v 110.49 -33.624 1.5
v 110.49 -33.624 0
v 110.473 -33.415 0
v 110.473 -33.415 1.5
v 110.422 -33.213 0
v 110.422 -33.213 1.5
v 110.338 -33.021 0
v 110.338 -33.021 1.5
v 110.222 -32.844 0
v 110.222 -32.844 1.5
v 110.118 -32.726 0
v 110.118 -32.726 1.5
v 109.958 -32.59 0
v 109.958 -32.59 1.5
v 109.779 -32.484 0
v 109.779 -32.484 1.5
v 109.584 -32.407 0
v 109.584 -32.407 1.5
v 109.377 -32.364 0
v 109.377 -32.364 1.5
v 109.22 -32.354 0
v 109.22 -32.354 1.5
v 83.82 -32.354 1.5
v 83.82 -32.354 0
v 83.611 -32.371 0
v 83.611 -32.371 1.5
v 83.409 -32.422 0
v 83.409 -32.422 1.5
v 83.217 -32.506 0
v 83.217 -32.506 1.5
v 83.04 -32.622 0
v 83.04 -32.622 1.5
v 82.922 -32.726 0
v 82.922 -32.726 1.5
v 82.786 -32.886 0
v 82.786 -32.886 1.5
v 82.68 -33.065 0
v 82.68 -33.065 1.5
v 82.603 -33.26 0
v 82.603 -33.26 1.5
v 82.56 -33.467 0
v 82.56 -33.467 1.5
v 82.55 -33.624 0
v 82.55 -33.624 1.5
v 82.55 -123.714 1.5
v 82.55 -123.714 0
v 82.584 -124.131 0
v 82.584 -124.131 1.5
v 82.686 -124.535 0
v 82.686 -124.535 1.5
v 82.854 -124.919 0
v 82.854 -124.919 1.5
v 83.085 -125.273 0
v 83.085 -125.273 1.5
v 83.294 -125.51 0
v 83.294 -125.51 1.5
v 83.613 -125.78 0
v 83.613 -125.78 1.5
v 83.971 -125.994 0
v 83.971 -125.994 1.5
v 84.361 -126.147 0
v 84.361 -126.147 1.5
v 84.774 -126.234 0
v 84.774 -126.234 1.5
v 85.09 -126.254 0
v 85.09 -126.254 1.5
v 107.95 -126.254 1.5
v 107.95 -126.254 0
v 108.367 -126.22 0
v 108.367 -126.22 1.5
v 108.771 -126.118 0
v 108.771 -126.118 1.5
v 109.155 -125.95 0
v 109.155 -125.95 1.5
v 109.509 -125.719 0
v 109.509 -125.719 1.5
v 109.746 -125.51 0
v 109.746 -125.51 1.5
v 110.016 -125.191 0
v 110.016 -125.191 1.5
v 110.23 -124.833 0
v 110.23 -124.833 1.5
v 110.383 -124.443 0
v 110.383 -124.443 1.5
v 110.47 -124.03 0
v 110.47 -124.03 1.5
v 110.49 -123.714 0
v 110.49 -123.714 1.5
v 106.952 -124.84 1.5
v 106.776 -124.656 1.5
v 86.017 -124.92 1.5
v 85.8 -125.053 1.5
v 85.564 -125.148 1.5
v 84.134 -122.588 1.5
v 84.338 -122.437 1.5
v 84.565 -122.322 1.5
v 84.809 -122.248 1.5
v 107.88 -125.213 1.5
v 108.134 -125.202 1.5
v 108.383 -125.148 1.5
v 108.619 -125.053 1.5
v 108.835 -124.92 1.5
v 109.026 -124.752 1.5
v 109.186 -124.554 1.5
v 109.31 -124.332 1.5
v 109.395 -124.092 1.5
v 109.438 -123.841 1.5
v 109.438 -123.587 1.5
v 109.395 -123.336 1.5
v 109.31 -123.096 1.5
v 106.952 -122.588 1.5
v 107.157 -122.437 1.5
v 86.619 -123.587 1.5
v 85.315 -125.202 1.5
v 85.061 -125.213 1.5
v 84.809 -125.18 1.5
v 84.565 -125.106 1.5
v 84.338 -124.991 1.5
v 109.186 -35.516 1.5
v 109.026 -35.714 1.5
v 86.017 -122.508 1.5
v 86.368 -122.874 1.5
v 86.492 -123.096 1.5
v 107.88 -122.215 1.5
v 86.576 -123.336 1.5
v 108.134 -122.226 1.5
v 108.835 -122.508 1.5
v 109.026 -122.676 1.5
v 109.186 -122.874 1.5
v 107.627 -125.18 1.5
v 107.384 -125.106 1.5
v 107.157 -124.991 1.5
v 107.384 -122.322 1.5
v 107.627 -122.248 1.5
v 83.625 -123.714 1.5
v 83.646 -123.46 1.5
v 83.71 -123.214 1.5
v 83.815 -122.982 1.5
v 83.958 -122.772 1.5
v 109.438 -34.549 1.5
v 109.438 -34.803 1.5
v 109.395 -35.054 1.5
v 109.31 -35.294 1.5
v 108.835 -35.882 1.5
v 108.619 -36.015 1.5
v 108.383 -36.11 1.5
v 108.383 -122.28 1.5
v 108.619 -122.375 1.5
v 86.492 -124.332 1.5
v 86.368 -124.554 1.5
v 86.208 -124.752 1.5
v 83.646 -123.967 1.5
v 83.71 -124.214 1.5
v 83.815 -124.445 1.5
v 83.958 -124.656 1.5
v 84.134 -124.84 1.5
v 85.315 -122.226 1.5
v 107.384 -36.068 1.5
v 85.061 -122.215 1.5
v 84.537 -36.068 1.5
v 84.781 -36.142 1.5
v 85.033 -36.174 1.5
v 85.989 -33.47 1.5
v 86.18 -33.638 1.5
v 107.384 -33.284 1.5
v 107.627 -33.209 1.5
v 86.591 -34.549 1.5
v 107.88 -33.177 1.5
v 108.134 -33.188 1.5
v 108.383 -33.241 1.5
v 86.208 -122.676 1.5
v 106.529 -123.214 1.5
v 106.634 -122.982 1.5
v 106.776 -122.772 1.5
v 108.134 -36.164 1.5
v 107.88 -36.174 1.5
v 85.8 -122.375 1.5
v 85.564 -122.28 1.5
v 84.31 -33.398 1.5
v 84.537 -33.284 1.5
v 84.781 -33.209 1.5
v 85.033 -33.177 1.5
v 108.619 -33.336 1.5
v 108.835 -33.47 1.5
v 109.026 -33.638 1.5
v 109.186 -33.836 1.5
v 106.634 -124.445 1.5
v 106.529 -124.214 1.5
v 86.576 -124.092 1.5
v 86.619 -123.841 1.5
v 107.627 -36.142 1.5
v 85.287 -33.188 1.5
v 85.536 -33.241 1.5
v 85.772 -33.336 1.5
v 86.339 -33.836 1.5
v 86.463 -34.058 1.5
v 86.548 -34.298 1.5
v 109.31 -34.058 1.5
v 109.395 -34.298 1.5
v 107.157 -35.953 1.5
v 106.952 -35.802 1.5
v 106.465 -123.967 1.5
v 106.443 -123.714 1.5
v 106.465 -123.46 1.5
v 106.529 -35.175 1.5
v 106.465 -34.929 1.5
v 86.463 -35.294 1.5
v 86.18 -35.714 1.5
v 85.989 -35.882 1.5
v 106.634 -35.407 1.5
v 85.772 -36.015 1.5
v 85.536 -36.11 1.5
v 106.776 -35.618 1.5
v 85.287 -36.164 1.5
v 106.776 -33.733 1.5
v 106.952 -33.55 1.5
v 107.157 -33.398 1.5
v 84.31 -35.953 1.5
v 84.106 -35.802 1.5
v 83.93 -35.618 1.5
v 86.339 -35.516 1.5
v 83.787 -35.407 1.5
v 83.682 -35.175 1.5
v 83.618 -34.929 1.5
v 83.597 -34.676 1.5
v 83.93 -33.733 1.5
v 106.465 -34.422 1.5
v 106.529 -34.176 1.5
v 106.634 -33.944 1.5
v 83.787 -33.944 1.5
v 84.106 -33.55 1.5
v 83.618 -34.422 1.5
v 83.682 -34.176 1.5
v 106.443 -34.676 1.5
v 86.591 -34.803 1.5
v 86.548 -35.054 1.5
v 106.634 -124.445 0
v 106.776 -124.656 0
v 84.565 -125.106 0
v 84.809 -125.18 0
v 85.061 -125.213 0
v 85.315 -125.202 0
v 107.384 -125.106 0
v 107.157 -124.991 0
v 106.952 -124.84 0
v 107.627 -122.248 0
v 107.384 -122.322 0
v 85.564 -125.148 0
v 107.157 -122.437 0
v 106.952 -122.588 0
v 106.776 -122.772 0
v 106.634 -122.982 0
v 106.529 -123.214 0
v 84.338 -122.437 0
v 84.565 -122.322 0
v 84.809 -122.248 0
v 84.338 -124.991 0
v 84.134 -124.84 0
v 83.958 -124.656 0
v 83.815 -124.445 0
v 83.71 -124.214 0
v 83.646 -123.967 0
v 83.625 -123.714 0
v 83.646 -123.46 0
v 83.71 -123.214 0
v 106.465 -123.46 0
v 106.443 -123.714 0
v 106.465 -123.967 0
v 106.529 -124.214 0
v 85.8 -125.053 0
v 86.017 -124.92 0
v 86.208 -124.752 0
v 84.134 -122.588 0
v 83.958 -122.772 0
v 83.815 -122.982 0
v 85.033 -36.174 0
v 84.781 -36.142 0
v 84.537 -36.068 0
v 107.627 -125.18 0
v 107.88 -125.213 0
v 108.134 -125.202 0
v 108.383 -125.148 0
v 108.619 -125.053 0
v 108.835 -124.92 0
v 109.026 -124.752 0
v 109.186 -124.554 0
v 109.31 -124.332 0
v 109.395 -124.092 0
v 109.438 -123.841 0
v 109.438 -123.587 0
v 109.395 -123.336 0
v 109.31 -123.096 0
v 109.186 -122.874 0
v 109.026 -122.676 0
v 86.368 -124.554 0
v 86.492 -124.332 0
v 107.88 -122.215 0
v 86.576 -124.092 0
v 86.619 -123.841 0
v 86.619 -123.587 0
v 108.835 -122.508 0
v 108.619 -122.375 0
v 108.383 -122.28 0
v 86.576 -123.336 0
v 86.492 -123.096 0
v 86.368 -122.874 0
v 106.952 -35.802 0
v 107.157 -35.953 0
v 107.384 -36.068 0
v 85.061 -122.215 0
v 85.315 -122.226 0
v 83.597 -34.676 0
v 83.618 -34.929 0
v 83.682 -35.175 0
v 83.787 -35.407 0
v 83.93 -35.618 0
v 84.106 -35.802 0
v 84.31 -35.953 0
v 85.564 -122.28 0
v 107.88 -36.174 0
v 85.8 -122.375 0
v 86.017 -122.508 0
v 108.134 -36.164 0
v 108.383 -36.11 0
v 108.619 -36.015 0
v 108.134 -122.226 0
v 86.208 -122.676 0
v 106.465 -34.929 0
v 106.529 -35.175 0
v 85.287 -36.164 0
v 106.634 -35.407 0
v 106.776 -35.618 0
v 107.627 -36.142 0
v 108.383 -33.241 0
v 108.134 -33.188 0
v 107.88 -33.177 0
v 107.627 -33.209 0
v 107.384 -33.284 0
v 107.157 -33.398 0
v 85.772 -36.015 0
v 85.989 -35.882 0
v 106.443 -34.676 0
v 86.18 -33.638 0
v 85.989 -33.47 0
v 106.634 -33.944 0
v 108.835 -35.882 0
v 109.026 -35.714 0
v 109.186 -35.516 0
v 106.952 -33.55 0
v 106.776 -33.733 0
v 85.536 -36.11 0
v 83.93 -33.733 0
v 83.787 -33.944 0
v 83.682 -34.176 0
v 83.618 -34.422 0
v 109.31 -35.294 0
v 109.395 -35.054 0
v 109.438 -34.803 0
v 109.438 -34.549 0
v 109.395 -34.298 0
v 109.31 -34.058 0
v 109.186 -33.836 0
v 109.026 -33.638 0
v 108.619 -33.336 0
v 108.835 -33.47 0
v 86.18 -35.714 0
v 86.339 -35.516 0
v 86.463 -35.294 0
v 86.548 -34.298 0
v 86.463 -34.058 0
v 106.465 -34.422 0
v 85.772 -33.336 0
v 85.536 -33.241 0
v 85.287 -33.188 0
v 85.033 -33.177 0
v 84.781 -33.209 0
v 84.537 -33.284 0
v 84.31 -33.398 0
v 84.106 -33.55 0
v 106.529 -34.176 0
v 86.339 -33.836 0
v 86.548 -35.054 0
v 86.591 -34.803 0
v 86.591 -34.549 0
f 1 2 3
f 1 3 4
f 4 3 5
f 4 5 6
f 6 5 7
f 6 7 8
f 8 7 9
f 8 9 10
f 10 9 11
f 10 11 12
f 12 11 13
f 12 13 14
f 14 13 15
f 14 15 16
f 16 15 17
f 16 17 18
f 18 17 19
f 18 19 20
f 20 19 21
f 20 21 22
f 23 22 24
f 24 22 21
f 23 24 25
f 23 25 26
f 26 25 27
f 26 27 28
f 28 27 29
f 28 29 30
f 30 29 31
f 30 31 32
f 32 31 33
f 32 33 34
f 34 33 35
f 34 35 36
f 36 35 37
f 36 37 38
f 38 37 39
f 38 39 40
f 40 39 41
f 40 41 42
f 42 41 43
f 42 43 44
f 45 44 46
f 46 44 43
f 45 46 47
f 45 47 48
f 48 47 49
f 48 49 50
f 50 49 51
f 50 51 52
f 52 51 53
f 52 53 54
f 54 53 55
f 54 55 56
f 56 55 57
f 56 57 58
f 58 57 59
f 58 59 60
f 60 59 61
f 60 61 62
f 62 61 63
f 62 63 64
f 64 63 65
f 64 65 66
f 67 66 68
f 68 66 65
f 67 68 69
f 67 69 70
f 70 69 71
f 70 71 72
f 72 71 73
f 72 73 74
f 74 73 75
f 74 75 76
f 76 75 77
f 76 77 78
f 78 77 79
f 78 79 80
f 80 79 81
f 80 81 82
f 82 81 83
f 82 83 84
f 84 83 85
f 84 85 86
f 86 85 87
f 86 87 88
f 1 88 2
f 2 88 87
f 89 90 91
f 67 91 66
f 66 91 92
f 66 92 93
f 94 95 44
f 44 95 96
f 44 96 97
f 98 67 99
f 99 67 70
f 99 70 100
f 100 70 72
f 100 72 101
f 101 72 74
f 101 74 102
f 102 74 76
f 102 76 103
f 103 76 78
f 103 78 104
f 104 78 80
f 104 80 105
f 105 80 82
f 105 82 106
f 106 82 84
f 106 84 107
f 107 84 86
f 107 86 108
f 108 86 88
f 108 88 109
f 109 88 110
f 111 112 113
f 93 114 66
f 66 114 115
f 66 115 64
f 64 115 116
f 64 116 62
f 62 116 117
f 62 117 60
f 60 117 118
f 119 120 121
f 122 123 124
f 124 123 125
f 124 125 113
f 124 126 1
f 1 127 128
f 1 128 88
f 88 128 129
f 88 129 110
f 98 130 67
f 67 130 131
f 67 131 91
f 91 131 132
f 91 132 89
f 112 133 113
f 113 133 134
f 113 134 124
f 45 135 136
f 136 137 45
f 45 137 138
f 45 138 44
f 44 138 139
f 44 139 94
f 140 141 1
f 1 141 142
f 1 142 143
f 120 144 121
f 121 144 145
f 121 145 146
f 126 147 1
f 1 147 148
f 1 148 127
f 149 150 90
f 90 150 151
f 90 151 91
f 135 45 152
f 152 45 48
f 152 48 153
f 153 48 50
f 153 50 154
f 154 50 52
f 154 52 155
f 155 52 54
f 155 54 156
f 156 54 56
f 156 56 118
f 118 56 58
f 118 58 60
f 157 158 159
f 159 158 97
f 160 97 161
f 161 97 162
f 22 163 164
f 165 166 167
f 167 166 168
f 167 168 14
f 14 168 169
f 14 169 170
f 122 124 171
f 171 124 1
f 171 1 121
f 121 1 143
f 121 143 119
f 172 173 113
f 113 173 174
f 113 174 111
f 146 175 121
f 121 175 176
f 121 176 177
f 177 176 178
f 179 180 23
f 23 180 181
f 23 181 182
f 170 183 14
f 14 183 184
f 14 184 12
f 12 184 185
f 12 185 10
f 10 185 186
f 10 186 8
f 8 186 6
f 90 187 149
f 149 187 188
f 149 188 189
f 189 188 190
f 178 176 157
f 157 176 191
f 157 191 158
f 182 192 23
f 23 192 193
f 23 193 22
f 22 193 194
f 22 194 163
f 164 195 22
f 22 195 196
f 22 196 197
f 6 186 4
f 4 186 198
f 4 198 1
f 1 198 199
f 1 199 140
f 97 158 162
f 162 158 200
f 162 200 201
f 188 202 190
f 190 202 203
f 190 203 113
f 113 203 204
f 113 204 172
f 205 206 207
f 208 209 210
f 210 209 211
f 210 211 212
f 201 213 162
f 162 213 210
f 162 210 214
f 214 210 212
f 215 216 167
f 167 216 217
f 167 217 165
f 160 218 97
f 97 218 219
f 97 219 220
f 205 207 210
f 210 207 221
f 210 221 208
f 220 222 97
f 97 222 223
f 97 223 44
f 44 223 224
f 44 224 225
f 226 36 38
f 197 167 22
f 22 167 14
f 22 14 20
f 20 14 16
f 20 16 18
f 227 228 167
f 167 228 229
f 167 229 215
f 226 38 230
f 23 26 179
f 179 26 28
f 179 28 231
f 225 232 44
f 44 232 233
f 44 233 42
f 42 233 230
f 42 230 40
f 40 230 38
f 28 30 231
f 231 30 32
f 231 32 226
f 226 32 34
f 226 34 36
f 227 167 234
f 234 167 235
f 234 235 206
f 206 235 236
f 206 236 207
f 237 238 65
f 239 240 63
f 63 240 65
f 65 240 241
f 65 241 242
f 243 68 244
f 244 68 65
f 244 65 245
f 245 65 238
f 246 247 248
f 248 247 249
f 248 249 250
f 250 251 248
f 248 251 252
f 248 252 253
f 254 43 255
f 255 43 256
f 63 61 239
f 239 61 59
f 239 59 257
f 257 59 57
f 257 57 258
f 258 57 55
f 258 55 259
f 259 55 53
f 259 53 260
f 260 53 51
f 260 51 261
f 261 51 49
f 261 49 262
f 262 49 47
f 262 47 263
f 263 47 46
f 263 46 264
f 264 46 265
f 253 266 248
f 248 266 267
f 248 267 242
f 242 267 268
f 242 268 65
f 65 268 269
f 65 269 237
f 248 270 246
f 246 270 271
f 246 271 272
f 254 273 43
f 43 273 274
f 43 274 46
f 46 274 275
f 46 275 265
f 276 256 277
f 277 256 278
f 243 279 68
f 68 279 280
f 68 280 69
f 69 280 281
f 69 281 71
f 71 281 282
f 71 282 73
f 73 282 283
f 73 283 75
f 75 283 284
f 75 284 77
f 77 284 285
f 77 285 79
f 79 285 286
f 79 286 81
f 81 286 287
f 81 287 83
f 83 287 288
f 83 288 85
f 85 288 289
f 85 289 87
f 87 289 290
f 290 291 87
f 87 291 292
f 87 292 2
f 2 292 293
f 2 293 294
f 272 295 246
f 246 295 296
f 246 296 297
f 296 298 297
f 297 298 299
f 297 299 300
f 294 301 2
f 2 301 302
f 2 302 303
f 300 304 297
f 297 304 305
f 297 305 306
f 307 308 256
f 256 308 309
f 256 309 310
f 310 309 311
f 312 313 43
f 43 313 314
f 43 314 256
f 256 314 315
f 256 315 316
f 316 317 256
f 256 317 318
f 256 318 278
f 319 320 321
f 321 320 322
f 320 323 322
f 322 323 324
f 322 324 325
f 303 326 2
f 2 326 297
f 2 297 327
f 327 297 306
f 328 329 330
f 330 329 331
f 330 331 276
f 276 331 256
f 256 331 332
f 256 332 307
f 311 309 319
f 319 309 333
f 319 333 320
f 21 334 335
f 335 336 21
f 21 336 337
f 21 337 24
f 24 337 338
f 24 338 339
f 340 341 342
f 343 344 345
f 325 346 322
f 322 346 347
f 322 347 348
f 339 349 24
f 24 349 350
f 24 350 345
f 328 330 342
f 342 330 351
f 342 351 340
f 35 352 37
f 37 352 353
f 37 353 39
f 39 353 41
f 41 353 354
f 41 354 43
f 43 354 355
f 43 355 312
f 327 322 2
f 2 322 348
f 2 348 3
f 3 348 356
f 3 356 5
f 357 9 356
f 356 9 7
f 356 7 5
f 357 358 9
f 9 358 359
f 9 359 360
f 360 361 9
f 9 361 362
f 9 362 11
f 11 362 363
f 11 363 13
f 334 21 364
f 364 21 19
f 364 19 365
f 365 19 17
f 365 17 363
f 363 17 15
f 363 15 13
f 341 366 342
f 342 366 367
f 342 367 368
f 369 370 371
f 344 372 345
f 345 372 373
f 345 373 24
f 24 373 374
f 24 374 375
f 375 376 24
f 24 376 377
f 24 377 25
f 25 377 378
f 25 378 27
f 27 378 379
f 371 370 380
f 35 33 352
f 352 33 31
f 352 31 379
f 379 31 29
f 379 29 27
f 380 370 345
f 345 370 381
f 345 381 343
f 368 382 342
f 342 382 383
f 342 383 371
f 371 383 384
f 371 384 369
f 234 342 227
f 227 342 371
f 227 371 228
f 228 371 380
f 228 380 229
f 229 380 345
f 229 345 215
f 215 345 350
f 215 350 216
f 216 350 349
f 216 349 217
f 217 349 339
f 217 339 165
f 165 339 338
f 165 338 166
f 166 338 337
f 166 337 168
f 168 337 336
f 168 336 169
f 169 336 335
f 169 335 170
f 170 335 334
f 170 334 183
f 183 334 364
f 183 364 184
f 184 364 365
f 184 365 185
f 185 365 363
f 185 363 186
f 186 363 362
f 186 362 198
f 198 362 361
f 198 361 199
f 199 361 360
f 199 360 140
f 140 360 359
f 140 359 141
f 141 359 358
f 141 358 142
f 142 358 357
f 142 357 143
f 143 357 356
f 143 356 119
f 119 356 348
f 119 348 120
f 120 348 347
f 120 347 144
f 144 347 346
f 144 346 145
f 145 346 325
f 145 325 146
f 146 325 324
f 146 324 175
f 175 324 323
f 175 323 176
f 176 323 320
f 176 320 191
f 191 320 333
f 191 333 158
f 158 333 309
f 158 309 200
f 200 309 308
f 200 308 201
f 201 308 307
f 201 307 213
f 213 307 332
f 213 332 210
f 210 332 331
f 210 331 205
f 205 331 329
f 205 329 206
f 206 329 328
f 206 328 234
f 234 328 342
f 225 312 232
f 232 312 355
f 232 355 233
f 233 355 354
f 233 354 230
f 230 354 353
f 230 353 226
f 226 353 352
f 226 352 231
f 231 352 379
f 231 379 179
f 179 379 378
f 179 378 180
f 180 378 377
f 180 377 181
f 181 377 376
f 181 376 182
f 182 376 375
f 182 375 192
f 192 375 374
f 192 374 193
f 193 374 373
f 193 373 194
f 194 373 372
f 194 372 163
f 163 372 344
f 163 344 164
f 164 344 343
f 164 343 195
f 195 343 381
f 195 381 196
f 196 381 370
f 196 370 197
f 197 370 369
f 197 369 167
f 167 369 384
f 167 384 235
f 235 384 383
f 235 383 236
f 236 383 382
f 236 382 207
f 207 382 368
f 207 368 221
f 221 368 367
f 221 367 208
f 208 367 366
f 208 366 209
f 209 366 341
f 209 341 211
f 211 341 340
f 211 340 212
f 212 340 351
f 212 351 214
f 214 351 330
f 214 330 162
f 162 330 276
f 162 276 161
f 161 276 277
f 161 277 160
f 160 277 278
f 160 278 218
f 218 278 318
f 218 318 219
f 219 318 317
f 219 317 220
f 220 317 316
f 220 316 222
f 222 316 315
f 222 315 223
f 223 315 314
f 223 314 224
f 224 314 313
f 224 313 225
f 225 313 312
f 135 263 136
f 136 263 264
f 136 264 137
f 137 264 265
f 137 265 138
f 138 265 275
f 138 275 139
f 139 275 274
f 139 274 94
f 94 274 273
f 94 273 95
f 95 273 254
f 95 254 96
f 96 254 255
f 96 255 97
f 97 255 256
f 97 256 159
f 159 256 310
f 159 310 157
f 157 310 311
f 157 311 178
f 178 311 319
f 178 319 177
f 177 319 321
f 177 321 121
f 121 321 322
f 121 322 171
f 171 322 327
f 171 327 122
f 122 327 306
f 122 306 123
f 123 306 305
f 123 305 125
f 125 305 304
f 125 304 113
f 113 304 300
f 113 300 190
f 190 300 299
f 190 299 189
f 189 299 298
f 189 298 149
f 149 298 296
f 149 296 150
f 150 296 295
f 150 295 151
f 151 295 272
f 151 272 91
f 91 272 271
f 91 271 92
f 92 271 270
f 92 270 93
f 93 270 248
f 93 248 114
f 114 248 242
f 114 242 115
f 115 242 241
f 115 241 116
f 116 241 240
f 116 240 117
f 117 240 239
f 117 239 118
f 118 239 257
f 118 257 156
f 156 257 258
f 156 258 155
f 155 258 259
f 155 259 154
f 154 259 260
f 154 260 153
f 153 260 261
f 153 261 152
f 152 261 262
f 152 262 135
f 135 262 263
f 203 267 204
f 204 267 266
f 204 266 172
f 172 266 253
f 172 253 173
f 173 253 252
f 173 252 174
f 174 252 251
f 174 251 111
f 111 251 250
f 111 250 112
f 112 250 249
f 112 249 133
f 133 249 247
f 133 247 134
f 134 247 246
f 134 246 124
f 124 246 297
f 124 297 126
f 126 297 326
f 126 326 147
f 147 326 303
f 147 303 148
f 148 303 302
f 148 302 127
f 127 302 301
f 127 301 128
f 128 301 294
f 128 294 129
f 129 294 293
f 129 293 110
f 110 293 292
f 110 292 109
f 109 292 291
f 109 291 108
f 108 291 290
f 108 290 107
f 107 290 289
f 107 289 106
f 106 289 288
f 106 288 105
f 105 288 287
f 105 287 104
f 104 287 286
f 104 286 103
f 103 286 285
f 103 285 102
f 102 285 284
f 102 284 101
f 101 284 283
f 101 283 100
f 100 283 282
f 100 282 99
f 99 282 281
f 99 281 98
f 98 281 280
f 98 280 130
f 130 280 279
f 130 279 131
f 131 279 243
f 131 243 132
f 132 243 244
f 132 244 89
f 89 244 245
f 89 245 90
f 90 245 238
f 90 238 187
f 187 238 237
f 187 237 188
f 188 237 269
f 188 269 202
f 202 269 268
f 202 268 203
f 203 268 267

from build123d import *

# Parameters (mm, degrees)
BOSS_EXTRU_1_DEPTH      = 1.5
ESQUISSE2_R             = 1.304771715
ESQUISSE2_R_2           = 1.27
ENL_V_MAT_EXTRU_1_DEPTH = 10
ESQUISSE3_R             = 1.3
ENL_V_MAT_EXTRU_2_DEPTH = 10
ESQUISSE4_R             = 1.3
ENL_V_MAT_EXTRU_3_DEPTH = 10
ESQUISSE6_R             = 1.5
ENL_V_MAT_EXTRU_4_DEPTH = 10


with BuildPart() as part:
    # Model → Boss.-Extru.1 (new body)
    with BuildSketch(Plane.XY):
        with BuildLine():
            Line((110.49, -33.623931), (110.49, -38.623931))
            Line((110.49, -38.623931), (110.49, -39.893931))
            Line((110.49, -39.893931), (110.49, -123.713931))
            add(Edge.make_bspline(
                [(109.746051, -125.509982), (110.222394, -125.03364), (110.49, -124.387581), (110.49, -123.713931)],
                knots=[0, 0, 0, 0, 1, 1, 1, 1], degree=3))
            add(Edge.make_bspline(
                [(107.95, -126.253931), (108.62365, -126.253931), (109.269709, -125.986325), (109.746051, -125.509982)],
                knots=[0, 0, 0, 0, 1, 1, 1, 1], degree=3))
            Line((107.95, -126.253931), (85.09, -126.253931))
            add(Edge.make_bspline(
                [(83.293949, -125.509982), (83.770291, -125.986325), (84.41635, -126.253931), (85.09, -126.253931)],
                knots=[0, 0, 0, 0, 1, 1, 1, 1], degree=3))
            add(Edge.make_bspline(
                [(82.55, -123.713931), (82.55, -124.387581), (82.817606, -125.03364), (83.293949, -125.509982)],
                knots=[0, 0, 0, 0, 1, 1, 1, 1], degree=3))
            Line((82.55, -123.713931), (82.55, -39.893931))
            Line((82.55, -39.893931), (82.55, -38.623931))
            Line((82.55, -38.623931), (82.55, -33.623931))
            add(Edge.make_bspline(
                [(82.921974, -32.725905), (82.683803, -32.964076), (82.55, -33.287106), (82.55, -33.623931)],
                knots=[0, 0, 0, 0, 1, 1, 1, 1], degree=3))
            add(Edge.make_bspline(
                [(83.82, -32.353931), (83.483175, -32.353931), (83.160146, -32.487734), (82.921974, -32.725905)],
                knots=[0, 0, 0, 0, 1, 1, 1, 1], degree=3))
            Line((83.82, -32.353931), (109.22, -32.353931))
            add(Edge.make_bspline(
                [(110.118026, -32.725905), (109.879854, -32.487734), (109.556825, -32.353931), (109.22, -32.353931)],
                knots=[0, 0, 0, 0, 1, 1, 1, 1], degree=3))
            add(Edge.make_bspline(
                [(110.49, -33.623931), (110.49, -33.287106), (110.356197, -32.964076), (110.118026, -32.725905)],
                knots=[0, 0, 0, 0, 1, 1, 1, 1], degree=3))
        make_face()
    extrude(amount=BOSS_EXTRU_1_DEPTH)

    # Esquisse2 → Enlèv. mat.-Extru.1 (cut)
    with BuildSketch(Plane.XY.offset(1.5)):
        with Locations((85.124771715, -123.713931)):
            Circle(ESQUISSE2_R)
        with Locations((122.913557923, -132.317690326)):
            Circle(ESQUISSE2_R_2)
    extrude(amount=-ENL_V_MAT_EXTRU_1_DEPTH, mode=Mode.SUBTRACT)

    # Esquisse3 → Enlèv. mat.-Extru.2 (cut)
    with BuildSketch(Plane.XY.offset(1.5)):
        with Locations((107.943434753, -123.713931)):
            Circle(ESQUISSE3_R)
    extrude(amount=-ENL_V_MAT_EXTRU_2_DEPTH, mode=Mode.SUBTRACT)

    # Esquisse4 → Enlèv. mat.-Extru.3 (cut)
    with BuildSketch(Plane(origin=(0, 0, 0), x_dir=(-1, 0, 0), z_dir=(0, 0, -1))):
        with Locations((-107.943434753, -34.675709558)):
            Circle(ESQUISSE4_R)
        with Locations((-85.096565247, -34.675709558)):
            Circle(ESQUISSE4_R)
    extrude(amount=-ENL_V_MAT_EXTRU_3_DEPTH, mode=Mode.SUBTRACT)

    # Esquisse6 → Enlèv. mat.-Extru.4 (cut)
    with BuildSketch(Plane(origin=(0, 0, 0), x_dir=(-1, 0, 0), z_dir=(0, 0, -1))):
        with Locations((-107.943434753, -34.675709558)):
            Circle(ESQUISSE6_R)
        with Locations((-85.096565247, -34.675709558)):
            Circle(ESQUISSE6_R)
        with Locations((-85.124771715, -123.713931)):
            Circle(ESQUISSE6_R)
        with Locations((-107.943434753, -123.713931)):
            Circle(ESQUISSE6_R)
    extrude(amount=-ENL_V_MAT_EXTRU_4_DEPTH, mode=Mode.SUBTRACT)


solid = part.part
